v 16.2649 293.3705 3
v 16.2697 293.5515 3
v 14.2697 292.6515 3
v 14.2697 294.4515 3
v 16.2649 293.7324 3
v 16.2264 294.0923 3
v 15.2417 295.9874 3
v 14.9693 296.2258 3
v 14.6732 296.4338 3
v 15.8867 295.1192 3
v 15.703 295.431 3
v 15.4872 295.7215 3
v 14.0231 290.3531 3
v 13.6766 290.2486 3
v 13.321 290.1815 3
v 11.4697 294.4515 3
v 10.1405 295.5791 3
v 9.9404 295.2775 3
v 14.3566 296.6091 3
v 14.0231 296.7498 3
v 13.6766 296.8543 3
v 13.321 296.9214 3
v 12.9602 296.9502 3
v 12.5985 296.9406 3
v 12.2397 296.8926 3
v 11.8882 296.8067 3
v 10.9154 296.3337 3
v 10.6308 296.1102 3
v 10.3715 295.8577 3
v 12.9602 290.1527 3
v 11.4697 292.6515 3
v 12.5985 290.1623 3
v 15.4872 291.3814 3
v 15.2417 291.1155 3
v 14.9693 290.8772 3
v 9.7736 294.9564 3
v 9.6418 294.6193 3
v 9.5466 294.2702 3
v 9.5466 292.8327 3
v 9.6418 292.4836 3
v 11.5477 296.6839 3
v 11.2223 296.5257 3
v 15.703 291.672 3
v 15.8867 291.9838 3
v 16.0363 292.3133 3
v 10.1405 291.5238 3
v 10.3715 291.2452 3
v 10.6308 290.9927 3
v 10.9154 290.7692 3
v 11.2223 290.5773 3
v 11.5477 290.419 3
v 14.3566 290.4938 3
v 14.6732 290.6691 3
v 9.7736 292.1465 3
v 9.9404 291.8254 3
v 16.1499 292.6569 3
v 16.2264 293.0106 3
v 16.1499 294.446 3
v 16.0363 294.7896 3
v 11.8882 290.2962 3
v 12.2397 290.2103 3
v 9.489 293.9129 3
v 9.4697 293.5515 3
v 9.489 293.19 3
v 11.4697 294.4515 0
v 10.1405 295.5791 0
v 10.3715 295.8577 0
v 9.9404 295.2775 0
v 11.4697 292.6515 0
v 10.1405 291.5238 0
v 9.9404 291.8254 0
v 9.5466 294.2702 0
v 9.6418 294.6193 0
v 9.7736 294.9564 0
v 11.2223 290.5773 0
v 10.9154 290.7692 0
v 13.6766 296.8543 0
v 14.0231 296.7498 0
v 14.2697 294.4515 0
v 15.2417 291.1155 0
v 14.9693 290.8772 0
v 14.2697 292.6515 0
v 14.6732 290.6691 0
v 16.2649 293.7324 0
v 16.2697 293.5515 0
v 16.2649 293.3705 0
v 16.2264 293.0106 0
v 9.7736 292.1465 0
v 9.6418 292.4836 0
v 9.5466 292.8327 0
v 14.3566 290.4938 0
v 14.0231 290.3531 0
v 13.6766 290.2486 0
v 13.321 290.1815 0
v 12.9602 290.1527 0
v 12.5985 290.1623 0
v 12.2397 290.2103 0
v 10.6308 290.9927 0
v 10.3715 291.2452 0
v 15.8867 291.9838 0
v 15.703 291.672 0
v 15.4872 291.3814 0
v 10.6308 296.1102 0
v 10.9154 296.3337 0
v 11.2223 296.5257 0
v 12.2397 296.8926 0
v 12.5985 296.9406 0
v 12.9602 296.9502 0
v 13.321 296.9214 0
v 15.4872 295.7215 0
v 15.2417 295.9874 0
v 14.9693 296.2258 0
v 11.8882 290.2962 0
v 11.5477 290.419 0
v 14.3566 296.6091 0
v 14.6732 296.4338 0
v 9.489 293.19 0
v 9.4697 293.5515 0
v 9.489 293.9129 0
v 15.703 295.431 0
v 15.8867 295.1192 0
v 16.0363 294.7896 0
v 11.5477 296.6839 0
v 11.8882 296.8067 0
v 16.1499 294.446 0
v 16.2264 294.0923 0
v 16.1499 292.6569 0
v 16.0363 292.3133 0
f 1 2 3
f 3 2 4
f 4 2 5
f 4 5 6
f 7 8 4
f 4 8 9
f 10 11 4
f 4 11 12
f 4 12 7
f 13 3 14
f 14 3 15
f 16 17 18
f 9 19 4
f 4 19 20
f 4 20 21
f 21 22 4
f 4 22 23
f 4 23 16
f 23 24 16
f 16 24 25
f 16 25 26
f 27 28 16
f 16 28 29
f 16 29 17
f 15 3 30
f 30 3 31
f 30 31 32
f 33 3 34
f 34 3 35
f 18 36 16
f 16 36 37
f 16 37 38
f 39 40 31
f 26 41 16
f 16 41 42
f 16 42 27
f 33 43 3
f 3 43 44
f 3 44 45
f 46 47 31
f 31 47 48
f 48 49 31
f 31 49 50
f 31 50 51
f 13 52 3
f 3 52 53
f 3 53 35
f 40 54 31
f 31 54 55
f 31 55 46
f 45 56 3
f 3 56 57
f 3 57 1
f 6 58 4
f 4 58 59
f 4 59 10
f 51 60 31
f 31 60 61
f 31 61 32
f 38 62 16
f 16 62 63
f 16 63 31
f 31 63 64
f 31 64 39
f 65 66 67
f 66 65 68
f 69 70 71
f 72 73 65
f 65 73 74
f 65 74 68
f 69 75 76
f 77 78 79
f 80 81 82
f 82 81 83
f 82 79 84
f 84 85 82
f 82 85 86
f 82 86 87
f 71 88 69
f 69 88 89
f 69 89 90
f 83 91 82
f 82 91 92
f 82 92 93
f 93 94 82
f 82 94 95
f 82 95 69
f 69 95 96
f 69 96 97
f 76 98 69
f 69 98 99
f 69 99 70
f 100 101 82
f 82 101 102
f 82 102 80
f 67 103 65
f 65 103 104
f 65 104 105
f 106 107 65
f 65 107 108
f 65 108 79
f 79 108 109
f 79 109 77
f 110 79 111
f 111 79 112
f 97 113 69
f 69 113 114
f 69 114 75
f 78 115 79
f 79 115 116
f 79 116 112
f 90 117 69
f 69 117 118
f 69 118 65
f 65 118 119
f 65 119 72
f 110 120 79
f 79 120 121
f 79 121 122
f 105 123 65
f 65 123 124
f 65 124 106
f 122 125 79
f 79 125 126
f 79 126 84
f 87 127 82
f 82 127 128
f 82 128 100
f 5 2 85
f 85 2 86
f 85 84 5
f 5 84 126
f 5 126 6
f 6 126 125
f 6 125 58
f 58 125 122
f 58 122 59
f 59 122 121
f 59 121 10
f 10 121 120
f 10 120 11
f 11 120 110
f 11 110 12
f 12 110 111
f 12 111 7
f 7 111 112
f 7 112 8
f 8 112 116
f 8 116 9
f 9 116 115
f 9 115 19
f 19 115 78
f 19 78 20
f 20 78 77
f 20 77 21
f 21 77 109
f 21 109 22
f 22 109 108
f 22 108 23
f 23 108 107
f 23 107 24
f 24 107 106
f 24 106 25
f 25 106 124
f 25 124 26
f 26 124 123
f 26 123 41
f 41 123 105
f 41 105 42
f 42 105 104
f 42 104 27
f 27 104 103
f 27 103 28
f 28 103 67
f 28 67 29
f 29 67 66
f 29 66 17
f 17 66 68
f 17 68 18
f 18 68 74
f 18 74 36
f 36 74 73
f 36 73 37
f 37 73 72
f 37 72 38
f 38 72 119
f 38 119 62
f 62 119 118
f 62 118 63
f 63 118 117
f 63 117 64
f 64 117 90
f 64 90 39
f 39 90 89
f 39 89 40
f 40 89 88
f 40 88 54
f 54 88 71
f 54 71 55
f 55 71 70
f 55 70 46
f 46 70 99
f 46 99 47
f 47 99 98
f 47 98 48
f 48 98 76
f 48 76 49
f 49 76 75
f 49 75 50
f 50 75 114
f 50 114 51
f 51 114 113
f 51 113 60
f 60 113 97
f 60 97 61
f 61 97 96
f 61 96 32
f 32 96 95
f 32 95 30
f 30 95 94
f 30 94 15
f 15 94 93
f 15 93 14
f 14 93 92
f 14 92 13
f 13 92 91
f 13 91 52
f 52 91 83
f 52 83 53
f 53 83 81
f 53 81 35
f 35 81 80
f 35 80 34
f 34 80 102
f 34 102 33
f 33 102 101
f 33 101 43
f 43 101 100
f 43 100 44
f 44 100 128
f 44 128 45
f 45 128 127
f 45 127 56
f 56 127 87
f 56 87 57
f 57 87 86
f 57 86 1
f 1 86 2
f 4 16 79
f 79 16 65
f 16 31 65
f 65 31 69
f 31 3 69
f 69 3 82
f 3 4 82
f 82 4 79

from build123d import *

# Parameters (mm, degrees)
MODEL_R                 = 3.4
MODEL_W                 = 2.8
MODEL_H                 = 1.8
SALIENTE_EXTRUIR1_DEPTH = 3


with BuildPart() as part:
    # Model → Saliente-Extruir1 (new body)
    with BuildSketch(Plane.XY):
        with Locations((12.869725503, 293.551469222)):
            Circle(MODEL_R)
        with Locations((12.869725503, 293.551469222)):
            Rectangle(MODEL_W, MODEL_H, mode=Mode.SUBTRACT)
    extrude(amount=SALIENTE_EXTRUIR1_DEPTH)


solid = part.part
